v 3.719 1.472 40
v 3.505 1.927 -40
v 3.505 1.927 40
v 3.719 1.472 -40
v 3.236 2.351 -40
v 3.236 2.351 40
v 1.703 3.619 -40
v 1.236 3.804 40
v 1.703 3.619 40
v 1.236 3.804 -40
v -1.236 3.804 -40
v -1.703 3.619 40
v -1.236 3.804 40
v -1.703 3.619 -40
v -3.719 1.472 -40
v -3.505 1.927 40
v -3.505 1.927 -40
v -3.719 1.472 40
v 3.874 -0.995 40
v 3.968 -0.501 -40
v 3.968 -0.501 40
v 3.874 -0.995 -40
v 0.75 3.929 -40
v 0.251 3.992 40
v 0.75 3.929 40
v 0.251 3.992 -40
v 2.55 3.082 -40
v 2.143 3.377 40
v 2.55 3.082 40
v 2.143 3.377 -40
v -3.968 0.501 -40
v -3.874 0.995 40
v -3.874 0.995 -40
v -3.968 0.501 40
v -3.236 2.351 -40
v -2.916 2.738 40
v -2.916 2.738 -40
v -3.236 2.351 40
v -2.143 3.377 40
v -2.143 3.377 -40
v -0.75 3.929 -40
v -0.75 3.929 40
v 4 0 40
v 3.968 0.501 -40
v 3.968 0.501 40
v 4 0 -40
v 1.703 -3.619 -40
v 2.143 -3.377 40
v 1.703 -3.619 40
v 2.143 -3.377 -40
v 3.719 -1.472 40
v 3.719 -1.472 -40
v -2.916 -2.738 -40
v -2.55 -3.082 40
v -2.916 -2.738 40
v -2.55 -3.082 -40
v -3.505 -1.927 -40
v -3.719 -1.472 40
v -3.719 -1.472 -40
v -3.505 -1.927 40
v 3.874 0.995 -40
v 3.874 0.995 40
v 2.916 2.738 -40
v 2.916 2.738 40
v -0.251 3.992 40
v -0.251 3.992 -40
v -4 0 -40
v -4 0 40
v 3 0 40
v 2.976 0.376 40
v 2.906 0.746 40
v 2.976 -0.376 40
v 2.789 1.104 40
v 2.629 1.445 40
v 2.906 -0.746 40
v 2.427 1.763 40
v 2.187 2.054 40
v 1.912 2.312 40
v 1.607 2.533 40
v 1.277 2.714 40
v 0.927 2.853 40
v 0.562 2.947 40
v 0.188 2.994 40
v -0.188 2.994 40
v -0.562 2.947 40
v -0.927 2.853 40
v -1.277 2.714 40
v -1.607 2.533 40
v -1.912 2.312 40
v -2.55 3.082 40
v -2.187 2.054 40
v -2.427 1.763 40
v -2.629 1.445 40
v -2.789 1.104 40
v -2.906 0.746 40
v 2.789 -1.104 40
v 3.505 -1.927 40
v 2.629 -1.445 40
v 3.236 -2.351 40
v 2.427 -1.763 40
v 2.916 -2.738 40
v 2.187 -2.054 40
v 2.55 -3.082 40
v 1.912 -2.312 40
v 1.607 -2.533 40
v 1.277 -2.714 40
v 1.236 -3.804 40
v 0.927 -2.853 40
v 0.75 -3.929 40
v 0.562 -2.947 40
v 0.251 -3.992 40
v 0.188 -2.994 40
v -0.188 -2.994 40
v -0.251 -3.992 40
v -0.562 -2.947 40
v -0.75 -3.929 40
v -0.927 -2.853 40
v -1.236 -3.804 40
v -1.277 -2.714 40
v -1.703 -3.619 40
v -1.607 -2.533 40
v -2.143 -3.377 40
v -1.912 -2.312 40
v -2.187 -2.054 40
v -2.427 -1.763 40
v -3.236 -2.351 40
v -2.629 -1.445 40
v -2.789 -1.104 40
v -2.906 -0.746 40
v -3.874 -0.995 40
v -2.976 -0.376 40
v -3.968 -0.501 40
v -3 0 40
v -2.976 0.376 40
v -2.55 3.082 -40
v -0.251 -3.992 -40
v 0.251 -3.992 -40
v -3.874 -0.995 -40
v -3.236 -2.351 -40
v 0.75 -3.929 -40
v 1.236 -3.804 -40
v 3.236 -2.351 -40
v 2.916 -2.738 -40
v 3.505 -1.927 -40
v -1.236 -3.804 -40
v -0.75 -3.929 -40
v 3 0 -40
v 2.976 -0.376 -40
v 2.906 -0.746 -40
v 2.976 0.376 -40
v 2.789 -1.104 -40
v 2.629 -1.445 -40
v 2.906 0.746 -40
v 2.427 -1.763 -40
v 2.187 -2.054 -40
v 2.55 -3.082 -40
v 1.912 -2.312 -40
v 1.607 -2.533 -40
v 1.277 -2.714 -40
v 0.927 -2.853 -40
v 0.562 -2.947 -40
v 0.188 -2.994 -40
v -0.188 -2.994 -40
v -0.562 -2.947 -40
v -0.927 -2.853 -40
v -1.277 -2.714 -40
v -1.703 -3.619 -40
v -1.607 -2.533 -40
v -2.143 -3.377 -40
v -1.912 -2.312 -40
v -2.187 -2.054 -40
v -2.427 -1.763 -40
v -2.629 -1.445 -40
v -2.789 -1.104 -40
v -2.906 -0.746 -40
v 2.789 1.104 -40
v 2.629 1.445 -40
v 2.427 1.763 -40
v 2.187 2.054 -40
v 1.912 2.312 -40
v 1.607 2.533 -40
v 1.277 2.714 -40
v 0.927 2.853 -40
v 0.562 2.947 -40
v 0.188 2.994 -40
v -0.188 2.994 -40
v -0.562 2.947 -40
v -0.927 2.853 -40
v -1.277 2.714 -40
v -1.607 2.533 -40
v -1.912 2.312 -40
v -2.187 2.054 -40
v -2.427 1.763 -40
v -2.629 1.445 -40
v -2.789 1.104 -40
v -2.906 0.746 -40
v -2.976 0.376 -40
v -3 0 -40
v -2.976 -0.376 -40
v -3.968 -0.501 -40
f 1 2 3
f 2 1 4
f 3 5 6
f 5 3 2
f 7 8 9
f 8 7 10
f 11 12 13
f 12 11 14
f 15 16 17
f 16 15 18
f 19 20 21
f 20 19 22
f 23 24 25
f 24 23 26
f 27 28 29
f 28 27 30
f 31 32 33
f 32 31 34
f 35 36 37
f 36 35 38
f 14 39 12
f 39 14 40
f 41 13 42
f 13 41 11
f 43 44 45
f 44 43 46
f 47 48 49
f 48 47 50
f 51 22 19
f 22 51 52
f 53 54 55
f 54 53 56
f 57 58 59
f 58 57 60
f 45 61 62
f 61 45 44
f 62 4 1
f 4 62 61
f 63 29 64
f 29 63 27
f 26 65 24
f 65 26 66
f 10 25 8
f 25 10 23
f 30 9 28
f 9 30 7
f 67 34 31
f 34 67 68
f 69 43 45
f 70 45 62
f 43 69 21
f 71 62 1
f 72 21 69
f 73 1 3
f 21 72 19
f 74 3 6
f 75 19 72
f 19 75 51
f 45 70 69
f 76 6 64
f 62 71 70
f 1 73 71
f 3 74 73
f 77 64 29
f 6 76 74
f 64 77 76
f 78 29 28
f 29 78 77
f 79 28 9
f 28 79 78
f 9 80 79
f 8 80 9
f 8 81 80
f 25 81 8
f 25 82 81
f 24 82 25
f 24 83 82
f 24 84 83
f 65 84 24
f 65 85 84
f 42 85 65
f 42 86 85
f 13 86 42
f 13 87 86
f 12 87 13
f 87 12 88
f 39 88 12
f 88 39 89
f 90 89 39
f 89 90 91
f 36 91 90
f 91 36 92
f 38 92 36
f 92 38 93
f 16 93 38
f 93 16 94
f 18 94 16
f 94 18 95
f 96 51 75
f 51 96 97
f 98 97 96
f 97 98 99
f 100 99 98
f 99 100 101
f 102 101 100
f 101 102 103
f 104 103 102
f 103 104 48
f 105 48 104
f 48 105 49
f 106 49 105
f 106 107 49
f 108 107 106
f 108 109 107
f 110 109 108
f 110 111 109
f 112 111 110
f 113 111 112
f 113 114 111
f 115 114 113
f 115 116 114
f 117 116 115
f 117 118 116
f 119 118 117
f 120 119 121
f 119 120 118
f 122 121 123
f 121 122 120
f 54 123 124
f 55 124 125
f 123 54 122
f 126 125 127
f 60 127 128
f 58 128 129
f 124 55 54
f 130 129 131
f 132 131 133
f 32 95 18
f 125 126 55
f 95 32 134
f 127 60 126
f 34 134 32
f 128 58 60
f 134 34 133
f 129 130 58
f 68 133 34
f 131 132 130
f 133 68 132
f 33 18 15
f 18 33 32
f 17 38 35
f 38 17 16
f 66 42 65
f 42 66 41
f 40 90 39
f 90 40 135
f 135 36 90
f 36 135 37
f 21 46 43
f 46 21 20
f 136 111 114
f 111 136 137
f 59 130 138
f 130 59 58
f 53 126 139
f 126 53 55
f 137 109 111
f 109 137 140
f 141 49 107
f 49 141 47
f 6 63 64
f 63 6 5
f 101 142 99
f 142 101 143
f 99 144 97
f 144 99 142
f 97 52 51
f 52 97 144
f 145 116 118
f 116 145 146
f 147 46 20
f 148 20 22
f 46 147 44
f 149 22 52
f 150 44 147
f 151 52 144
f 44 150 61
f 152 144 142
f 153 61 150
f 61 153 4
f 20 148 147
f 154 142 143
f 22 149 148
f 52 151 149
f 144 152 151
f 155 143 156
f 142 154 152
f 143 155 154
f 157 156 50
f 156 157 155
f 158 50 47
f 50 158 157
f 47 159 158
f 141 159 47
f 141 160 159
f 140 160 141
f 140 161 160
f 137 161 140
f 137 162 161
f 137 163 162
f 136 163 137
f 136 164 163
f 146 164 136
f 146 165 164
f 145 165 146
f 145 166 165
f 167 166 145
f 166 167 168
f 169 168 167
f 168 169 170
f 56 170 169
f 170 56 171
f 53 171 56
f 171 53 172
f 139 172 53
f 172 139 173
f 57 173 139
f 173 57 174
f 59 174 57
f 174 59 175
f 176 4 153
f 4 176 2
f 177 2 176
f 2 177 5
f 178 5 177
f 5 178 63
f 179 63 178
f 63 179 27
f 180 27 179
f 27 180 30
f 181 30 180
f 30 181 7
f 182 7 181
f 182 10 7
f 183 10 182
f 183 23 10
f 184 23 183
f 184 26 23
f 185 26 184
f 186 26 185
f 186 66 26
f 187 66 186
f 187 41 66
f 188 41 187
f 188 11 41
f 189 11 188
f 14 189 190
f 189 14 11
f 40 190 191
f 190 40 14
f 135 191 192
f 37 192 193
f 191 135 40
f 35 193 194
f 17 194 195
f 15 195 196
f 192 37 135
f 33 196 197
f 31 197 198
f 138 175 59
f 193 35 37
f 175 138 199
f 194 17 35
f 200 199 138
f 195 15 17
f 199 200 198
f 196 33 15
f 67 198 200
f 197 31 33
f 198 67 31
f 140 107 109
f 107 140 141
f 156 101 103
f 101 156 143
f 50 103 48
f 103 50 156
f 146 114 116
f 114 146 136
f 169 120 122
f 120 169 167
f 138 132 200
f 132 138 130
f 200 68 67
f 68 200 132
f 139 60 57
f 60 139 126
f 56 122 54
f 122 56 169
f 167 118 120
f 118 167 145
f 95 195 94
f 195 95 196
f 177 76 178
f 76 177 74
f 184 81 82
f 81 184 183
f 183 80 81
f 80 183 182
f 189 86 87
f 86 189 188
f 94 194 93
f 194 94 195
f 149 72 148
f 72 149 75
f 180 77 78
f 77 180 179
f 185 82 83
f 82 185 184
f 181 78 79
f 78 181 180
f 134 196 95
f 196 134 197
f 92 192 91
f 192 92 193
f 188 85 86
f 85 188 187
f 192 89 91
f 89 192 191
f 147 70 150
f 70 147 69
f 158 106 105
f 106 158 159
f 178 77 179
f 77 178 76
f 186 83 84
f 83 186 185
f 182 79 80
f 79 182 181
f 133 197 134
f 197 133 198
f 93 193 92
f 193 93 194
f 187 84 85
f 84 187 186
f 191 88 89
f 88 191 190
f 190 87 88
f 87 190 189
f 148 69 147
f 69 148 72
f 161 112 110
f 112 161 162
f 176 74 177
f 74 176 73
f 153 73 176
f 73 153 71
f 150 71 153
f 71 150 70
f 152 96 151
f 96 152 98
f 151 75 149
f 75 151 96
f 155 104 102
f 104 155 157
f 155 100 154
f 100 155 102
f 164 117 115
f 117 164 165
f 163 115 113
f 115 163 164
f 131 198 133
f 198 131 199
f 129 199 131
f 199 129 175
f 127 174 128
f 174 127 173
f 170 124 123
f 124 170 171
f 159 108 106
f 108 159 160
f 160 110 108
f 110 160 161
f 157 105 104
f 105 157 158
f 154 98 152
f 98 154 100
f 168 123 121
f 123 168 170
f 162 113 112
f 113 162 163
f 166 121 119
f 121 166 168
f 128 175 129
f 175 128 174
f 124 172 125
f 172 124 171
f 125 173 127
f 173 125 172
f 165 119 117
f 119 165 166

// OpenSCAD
$fn = 50;


difference() {
	union() {
		translate(v = [0, 0, -40.0000000000]) {
			cylinder(h = 80, r = 4.0000000000);
		}
	}
	union() {
		translate(v = [0, 0, -100.0000000000]) {
			cylinder(h = 200, r = 3);
		}
	}
}
